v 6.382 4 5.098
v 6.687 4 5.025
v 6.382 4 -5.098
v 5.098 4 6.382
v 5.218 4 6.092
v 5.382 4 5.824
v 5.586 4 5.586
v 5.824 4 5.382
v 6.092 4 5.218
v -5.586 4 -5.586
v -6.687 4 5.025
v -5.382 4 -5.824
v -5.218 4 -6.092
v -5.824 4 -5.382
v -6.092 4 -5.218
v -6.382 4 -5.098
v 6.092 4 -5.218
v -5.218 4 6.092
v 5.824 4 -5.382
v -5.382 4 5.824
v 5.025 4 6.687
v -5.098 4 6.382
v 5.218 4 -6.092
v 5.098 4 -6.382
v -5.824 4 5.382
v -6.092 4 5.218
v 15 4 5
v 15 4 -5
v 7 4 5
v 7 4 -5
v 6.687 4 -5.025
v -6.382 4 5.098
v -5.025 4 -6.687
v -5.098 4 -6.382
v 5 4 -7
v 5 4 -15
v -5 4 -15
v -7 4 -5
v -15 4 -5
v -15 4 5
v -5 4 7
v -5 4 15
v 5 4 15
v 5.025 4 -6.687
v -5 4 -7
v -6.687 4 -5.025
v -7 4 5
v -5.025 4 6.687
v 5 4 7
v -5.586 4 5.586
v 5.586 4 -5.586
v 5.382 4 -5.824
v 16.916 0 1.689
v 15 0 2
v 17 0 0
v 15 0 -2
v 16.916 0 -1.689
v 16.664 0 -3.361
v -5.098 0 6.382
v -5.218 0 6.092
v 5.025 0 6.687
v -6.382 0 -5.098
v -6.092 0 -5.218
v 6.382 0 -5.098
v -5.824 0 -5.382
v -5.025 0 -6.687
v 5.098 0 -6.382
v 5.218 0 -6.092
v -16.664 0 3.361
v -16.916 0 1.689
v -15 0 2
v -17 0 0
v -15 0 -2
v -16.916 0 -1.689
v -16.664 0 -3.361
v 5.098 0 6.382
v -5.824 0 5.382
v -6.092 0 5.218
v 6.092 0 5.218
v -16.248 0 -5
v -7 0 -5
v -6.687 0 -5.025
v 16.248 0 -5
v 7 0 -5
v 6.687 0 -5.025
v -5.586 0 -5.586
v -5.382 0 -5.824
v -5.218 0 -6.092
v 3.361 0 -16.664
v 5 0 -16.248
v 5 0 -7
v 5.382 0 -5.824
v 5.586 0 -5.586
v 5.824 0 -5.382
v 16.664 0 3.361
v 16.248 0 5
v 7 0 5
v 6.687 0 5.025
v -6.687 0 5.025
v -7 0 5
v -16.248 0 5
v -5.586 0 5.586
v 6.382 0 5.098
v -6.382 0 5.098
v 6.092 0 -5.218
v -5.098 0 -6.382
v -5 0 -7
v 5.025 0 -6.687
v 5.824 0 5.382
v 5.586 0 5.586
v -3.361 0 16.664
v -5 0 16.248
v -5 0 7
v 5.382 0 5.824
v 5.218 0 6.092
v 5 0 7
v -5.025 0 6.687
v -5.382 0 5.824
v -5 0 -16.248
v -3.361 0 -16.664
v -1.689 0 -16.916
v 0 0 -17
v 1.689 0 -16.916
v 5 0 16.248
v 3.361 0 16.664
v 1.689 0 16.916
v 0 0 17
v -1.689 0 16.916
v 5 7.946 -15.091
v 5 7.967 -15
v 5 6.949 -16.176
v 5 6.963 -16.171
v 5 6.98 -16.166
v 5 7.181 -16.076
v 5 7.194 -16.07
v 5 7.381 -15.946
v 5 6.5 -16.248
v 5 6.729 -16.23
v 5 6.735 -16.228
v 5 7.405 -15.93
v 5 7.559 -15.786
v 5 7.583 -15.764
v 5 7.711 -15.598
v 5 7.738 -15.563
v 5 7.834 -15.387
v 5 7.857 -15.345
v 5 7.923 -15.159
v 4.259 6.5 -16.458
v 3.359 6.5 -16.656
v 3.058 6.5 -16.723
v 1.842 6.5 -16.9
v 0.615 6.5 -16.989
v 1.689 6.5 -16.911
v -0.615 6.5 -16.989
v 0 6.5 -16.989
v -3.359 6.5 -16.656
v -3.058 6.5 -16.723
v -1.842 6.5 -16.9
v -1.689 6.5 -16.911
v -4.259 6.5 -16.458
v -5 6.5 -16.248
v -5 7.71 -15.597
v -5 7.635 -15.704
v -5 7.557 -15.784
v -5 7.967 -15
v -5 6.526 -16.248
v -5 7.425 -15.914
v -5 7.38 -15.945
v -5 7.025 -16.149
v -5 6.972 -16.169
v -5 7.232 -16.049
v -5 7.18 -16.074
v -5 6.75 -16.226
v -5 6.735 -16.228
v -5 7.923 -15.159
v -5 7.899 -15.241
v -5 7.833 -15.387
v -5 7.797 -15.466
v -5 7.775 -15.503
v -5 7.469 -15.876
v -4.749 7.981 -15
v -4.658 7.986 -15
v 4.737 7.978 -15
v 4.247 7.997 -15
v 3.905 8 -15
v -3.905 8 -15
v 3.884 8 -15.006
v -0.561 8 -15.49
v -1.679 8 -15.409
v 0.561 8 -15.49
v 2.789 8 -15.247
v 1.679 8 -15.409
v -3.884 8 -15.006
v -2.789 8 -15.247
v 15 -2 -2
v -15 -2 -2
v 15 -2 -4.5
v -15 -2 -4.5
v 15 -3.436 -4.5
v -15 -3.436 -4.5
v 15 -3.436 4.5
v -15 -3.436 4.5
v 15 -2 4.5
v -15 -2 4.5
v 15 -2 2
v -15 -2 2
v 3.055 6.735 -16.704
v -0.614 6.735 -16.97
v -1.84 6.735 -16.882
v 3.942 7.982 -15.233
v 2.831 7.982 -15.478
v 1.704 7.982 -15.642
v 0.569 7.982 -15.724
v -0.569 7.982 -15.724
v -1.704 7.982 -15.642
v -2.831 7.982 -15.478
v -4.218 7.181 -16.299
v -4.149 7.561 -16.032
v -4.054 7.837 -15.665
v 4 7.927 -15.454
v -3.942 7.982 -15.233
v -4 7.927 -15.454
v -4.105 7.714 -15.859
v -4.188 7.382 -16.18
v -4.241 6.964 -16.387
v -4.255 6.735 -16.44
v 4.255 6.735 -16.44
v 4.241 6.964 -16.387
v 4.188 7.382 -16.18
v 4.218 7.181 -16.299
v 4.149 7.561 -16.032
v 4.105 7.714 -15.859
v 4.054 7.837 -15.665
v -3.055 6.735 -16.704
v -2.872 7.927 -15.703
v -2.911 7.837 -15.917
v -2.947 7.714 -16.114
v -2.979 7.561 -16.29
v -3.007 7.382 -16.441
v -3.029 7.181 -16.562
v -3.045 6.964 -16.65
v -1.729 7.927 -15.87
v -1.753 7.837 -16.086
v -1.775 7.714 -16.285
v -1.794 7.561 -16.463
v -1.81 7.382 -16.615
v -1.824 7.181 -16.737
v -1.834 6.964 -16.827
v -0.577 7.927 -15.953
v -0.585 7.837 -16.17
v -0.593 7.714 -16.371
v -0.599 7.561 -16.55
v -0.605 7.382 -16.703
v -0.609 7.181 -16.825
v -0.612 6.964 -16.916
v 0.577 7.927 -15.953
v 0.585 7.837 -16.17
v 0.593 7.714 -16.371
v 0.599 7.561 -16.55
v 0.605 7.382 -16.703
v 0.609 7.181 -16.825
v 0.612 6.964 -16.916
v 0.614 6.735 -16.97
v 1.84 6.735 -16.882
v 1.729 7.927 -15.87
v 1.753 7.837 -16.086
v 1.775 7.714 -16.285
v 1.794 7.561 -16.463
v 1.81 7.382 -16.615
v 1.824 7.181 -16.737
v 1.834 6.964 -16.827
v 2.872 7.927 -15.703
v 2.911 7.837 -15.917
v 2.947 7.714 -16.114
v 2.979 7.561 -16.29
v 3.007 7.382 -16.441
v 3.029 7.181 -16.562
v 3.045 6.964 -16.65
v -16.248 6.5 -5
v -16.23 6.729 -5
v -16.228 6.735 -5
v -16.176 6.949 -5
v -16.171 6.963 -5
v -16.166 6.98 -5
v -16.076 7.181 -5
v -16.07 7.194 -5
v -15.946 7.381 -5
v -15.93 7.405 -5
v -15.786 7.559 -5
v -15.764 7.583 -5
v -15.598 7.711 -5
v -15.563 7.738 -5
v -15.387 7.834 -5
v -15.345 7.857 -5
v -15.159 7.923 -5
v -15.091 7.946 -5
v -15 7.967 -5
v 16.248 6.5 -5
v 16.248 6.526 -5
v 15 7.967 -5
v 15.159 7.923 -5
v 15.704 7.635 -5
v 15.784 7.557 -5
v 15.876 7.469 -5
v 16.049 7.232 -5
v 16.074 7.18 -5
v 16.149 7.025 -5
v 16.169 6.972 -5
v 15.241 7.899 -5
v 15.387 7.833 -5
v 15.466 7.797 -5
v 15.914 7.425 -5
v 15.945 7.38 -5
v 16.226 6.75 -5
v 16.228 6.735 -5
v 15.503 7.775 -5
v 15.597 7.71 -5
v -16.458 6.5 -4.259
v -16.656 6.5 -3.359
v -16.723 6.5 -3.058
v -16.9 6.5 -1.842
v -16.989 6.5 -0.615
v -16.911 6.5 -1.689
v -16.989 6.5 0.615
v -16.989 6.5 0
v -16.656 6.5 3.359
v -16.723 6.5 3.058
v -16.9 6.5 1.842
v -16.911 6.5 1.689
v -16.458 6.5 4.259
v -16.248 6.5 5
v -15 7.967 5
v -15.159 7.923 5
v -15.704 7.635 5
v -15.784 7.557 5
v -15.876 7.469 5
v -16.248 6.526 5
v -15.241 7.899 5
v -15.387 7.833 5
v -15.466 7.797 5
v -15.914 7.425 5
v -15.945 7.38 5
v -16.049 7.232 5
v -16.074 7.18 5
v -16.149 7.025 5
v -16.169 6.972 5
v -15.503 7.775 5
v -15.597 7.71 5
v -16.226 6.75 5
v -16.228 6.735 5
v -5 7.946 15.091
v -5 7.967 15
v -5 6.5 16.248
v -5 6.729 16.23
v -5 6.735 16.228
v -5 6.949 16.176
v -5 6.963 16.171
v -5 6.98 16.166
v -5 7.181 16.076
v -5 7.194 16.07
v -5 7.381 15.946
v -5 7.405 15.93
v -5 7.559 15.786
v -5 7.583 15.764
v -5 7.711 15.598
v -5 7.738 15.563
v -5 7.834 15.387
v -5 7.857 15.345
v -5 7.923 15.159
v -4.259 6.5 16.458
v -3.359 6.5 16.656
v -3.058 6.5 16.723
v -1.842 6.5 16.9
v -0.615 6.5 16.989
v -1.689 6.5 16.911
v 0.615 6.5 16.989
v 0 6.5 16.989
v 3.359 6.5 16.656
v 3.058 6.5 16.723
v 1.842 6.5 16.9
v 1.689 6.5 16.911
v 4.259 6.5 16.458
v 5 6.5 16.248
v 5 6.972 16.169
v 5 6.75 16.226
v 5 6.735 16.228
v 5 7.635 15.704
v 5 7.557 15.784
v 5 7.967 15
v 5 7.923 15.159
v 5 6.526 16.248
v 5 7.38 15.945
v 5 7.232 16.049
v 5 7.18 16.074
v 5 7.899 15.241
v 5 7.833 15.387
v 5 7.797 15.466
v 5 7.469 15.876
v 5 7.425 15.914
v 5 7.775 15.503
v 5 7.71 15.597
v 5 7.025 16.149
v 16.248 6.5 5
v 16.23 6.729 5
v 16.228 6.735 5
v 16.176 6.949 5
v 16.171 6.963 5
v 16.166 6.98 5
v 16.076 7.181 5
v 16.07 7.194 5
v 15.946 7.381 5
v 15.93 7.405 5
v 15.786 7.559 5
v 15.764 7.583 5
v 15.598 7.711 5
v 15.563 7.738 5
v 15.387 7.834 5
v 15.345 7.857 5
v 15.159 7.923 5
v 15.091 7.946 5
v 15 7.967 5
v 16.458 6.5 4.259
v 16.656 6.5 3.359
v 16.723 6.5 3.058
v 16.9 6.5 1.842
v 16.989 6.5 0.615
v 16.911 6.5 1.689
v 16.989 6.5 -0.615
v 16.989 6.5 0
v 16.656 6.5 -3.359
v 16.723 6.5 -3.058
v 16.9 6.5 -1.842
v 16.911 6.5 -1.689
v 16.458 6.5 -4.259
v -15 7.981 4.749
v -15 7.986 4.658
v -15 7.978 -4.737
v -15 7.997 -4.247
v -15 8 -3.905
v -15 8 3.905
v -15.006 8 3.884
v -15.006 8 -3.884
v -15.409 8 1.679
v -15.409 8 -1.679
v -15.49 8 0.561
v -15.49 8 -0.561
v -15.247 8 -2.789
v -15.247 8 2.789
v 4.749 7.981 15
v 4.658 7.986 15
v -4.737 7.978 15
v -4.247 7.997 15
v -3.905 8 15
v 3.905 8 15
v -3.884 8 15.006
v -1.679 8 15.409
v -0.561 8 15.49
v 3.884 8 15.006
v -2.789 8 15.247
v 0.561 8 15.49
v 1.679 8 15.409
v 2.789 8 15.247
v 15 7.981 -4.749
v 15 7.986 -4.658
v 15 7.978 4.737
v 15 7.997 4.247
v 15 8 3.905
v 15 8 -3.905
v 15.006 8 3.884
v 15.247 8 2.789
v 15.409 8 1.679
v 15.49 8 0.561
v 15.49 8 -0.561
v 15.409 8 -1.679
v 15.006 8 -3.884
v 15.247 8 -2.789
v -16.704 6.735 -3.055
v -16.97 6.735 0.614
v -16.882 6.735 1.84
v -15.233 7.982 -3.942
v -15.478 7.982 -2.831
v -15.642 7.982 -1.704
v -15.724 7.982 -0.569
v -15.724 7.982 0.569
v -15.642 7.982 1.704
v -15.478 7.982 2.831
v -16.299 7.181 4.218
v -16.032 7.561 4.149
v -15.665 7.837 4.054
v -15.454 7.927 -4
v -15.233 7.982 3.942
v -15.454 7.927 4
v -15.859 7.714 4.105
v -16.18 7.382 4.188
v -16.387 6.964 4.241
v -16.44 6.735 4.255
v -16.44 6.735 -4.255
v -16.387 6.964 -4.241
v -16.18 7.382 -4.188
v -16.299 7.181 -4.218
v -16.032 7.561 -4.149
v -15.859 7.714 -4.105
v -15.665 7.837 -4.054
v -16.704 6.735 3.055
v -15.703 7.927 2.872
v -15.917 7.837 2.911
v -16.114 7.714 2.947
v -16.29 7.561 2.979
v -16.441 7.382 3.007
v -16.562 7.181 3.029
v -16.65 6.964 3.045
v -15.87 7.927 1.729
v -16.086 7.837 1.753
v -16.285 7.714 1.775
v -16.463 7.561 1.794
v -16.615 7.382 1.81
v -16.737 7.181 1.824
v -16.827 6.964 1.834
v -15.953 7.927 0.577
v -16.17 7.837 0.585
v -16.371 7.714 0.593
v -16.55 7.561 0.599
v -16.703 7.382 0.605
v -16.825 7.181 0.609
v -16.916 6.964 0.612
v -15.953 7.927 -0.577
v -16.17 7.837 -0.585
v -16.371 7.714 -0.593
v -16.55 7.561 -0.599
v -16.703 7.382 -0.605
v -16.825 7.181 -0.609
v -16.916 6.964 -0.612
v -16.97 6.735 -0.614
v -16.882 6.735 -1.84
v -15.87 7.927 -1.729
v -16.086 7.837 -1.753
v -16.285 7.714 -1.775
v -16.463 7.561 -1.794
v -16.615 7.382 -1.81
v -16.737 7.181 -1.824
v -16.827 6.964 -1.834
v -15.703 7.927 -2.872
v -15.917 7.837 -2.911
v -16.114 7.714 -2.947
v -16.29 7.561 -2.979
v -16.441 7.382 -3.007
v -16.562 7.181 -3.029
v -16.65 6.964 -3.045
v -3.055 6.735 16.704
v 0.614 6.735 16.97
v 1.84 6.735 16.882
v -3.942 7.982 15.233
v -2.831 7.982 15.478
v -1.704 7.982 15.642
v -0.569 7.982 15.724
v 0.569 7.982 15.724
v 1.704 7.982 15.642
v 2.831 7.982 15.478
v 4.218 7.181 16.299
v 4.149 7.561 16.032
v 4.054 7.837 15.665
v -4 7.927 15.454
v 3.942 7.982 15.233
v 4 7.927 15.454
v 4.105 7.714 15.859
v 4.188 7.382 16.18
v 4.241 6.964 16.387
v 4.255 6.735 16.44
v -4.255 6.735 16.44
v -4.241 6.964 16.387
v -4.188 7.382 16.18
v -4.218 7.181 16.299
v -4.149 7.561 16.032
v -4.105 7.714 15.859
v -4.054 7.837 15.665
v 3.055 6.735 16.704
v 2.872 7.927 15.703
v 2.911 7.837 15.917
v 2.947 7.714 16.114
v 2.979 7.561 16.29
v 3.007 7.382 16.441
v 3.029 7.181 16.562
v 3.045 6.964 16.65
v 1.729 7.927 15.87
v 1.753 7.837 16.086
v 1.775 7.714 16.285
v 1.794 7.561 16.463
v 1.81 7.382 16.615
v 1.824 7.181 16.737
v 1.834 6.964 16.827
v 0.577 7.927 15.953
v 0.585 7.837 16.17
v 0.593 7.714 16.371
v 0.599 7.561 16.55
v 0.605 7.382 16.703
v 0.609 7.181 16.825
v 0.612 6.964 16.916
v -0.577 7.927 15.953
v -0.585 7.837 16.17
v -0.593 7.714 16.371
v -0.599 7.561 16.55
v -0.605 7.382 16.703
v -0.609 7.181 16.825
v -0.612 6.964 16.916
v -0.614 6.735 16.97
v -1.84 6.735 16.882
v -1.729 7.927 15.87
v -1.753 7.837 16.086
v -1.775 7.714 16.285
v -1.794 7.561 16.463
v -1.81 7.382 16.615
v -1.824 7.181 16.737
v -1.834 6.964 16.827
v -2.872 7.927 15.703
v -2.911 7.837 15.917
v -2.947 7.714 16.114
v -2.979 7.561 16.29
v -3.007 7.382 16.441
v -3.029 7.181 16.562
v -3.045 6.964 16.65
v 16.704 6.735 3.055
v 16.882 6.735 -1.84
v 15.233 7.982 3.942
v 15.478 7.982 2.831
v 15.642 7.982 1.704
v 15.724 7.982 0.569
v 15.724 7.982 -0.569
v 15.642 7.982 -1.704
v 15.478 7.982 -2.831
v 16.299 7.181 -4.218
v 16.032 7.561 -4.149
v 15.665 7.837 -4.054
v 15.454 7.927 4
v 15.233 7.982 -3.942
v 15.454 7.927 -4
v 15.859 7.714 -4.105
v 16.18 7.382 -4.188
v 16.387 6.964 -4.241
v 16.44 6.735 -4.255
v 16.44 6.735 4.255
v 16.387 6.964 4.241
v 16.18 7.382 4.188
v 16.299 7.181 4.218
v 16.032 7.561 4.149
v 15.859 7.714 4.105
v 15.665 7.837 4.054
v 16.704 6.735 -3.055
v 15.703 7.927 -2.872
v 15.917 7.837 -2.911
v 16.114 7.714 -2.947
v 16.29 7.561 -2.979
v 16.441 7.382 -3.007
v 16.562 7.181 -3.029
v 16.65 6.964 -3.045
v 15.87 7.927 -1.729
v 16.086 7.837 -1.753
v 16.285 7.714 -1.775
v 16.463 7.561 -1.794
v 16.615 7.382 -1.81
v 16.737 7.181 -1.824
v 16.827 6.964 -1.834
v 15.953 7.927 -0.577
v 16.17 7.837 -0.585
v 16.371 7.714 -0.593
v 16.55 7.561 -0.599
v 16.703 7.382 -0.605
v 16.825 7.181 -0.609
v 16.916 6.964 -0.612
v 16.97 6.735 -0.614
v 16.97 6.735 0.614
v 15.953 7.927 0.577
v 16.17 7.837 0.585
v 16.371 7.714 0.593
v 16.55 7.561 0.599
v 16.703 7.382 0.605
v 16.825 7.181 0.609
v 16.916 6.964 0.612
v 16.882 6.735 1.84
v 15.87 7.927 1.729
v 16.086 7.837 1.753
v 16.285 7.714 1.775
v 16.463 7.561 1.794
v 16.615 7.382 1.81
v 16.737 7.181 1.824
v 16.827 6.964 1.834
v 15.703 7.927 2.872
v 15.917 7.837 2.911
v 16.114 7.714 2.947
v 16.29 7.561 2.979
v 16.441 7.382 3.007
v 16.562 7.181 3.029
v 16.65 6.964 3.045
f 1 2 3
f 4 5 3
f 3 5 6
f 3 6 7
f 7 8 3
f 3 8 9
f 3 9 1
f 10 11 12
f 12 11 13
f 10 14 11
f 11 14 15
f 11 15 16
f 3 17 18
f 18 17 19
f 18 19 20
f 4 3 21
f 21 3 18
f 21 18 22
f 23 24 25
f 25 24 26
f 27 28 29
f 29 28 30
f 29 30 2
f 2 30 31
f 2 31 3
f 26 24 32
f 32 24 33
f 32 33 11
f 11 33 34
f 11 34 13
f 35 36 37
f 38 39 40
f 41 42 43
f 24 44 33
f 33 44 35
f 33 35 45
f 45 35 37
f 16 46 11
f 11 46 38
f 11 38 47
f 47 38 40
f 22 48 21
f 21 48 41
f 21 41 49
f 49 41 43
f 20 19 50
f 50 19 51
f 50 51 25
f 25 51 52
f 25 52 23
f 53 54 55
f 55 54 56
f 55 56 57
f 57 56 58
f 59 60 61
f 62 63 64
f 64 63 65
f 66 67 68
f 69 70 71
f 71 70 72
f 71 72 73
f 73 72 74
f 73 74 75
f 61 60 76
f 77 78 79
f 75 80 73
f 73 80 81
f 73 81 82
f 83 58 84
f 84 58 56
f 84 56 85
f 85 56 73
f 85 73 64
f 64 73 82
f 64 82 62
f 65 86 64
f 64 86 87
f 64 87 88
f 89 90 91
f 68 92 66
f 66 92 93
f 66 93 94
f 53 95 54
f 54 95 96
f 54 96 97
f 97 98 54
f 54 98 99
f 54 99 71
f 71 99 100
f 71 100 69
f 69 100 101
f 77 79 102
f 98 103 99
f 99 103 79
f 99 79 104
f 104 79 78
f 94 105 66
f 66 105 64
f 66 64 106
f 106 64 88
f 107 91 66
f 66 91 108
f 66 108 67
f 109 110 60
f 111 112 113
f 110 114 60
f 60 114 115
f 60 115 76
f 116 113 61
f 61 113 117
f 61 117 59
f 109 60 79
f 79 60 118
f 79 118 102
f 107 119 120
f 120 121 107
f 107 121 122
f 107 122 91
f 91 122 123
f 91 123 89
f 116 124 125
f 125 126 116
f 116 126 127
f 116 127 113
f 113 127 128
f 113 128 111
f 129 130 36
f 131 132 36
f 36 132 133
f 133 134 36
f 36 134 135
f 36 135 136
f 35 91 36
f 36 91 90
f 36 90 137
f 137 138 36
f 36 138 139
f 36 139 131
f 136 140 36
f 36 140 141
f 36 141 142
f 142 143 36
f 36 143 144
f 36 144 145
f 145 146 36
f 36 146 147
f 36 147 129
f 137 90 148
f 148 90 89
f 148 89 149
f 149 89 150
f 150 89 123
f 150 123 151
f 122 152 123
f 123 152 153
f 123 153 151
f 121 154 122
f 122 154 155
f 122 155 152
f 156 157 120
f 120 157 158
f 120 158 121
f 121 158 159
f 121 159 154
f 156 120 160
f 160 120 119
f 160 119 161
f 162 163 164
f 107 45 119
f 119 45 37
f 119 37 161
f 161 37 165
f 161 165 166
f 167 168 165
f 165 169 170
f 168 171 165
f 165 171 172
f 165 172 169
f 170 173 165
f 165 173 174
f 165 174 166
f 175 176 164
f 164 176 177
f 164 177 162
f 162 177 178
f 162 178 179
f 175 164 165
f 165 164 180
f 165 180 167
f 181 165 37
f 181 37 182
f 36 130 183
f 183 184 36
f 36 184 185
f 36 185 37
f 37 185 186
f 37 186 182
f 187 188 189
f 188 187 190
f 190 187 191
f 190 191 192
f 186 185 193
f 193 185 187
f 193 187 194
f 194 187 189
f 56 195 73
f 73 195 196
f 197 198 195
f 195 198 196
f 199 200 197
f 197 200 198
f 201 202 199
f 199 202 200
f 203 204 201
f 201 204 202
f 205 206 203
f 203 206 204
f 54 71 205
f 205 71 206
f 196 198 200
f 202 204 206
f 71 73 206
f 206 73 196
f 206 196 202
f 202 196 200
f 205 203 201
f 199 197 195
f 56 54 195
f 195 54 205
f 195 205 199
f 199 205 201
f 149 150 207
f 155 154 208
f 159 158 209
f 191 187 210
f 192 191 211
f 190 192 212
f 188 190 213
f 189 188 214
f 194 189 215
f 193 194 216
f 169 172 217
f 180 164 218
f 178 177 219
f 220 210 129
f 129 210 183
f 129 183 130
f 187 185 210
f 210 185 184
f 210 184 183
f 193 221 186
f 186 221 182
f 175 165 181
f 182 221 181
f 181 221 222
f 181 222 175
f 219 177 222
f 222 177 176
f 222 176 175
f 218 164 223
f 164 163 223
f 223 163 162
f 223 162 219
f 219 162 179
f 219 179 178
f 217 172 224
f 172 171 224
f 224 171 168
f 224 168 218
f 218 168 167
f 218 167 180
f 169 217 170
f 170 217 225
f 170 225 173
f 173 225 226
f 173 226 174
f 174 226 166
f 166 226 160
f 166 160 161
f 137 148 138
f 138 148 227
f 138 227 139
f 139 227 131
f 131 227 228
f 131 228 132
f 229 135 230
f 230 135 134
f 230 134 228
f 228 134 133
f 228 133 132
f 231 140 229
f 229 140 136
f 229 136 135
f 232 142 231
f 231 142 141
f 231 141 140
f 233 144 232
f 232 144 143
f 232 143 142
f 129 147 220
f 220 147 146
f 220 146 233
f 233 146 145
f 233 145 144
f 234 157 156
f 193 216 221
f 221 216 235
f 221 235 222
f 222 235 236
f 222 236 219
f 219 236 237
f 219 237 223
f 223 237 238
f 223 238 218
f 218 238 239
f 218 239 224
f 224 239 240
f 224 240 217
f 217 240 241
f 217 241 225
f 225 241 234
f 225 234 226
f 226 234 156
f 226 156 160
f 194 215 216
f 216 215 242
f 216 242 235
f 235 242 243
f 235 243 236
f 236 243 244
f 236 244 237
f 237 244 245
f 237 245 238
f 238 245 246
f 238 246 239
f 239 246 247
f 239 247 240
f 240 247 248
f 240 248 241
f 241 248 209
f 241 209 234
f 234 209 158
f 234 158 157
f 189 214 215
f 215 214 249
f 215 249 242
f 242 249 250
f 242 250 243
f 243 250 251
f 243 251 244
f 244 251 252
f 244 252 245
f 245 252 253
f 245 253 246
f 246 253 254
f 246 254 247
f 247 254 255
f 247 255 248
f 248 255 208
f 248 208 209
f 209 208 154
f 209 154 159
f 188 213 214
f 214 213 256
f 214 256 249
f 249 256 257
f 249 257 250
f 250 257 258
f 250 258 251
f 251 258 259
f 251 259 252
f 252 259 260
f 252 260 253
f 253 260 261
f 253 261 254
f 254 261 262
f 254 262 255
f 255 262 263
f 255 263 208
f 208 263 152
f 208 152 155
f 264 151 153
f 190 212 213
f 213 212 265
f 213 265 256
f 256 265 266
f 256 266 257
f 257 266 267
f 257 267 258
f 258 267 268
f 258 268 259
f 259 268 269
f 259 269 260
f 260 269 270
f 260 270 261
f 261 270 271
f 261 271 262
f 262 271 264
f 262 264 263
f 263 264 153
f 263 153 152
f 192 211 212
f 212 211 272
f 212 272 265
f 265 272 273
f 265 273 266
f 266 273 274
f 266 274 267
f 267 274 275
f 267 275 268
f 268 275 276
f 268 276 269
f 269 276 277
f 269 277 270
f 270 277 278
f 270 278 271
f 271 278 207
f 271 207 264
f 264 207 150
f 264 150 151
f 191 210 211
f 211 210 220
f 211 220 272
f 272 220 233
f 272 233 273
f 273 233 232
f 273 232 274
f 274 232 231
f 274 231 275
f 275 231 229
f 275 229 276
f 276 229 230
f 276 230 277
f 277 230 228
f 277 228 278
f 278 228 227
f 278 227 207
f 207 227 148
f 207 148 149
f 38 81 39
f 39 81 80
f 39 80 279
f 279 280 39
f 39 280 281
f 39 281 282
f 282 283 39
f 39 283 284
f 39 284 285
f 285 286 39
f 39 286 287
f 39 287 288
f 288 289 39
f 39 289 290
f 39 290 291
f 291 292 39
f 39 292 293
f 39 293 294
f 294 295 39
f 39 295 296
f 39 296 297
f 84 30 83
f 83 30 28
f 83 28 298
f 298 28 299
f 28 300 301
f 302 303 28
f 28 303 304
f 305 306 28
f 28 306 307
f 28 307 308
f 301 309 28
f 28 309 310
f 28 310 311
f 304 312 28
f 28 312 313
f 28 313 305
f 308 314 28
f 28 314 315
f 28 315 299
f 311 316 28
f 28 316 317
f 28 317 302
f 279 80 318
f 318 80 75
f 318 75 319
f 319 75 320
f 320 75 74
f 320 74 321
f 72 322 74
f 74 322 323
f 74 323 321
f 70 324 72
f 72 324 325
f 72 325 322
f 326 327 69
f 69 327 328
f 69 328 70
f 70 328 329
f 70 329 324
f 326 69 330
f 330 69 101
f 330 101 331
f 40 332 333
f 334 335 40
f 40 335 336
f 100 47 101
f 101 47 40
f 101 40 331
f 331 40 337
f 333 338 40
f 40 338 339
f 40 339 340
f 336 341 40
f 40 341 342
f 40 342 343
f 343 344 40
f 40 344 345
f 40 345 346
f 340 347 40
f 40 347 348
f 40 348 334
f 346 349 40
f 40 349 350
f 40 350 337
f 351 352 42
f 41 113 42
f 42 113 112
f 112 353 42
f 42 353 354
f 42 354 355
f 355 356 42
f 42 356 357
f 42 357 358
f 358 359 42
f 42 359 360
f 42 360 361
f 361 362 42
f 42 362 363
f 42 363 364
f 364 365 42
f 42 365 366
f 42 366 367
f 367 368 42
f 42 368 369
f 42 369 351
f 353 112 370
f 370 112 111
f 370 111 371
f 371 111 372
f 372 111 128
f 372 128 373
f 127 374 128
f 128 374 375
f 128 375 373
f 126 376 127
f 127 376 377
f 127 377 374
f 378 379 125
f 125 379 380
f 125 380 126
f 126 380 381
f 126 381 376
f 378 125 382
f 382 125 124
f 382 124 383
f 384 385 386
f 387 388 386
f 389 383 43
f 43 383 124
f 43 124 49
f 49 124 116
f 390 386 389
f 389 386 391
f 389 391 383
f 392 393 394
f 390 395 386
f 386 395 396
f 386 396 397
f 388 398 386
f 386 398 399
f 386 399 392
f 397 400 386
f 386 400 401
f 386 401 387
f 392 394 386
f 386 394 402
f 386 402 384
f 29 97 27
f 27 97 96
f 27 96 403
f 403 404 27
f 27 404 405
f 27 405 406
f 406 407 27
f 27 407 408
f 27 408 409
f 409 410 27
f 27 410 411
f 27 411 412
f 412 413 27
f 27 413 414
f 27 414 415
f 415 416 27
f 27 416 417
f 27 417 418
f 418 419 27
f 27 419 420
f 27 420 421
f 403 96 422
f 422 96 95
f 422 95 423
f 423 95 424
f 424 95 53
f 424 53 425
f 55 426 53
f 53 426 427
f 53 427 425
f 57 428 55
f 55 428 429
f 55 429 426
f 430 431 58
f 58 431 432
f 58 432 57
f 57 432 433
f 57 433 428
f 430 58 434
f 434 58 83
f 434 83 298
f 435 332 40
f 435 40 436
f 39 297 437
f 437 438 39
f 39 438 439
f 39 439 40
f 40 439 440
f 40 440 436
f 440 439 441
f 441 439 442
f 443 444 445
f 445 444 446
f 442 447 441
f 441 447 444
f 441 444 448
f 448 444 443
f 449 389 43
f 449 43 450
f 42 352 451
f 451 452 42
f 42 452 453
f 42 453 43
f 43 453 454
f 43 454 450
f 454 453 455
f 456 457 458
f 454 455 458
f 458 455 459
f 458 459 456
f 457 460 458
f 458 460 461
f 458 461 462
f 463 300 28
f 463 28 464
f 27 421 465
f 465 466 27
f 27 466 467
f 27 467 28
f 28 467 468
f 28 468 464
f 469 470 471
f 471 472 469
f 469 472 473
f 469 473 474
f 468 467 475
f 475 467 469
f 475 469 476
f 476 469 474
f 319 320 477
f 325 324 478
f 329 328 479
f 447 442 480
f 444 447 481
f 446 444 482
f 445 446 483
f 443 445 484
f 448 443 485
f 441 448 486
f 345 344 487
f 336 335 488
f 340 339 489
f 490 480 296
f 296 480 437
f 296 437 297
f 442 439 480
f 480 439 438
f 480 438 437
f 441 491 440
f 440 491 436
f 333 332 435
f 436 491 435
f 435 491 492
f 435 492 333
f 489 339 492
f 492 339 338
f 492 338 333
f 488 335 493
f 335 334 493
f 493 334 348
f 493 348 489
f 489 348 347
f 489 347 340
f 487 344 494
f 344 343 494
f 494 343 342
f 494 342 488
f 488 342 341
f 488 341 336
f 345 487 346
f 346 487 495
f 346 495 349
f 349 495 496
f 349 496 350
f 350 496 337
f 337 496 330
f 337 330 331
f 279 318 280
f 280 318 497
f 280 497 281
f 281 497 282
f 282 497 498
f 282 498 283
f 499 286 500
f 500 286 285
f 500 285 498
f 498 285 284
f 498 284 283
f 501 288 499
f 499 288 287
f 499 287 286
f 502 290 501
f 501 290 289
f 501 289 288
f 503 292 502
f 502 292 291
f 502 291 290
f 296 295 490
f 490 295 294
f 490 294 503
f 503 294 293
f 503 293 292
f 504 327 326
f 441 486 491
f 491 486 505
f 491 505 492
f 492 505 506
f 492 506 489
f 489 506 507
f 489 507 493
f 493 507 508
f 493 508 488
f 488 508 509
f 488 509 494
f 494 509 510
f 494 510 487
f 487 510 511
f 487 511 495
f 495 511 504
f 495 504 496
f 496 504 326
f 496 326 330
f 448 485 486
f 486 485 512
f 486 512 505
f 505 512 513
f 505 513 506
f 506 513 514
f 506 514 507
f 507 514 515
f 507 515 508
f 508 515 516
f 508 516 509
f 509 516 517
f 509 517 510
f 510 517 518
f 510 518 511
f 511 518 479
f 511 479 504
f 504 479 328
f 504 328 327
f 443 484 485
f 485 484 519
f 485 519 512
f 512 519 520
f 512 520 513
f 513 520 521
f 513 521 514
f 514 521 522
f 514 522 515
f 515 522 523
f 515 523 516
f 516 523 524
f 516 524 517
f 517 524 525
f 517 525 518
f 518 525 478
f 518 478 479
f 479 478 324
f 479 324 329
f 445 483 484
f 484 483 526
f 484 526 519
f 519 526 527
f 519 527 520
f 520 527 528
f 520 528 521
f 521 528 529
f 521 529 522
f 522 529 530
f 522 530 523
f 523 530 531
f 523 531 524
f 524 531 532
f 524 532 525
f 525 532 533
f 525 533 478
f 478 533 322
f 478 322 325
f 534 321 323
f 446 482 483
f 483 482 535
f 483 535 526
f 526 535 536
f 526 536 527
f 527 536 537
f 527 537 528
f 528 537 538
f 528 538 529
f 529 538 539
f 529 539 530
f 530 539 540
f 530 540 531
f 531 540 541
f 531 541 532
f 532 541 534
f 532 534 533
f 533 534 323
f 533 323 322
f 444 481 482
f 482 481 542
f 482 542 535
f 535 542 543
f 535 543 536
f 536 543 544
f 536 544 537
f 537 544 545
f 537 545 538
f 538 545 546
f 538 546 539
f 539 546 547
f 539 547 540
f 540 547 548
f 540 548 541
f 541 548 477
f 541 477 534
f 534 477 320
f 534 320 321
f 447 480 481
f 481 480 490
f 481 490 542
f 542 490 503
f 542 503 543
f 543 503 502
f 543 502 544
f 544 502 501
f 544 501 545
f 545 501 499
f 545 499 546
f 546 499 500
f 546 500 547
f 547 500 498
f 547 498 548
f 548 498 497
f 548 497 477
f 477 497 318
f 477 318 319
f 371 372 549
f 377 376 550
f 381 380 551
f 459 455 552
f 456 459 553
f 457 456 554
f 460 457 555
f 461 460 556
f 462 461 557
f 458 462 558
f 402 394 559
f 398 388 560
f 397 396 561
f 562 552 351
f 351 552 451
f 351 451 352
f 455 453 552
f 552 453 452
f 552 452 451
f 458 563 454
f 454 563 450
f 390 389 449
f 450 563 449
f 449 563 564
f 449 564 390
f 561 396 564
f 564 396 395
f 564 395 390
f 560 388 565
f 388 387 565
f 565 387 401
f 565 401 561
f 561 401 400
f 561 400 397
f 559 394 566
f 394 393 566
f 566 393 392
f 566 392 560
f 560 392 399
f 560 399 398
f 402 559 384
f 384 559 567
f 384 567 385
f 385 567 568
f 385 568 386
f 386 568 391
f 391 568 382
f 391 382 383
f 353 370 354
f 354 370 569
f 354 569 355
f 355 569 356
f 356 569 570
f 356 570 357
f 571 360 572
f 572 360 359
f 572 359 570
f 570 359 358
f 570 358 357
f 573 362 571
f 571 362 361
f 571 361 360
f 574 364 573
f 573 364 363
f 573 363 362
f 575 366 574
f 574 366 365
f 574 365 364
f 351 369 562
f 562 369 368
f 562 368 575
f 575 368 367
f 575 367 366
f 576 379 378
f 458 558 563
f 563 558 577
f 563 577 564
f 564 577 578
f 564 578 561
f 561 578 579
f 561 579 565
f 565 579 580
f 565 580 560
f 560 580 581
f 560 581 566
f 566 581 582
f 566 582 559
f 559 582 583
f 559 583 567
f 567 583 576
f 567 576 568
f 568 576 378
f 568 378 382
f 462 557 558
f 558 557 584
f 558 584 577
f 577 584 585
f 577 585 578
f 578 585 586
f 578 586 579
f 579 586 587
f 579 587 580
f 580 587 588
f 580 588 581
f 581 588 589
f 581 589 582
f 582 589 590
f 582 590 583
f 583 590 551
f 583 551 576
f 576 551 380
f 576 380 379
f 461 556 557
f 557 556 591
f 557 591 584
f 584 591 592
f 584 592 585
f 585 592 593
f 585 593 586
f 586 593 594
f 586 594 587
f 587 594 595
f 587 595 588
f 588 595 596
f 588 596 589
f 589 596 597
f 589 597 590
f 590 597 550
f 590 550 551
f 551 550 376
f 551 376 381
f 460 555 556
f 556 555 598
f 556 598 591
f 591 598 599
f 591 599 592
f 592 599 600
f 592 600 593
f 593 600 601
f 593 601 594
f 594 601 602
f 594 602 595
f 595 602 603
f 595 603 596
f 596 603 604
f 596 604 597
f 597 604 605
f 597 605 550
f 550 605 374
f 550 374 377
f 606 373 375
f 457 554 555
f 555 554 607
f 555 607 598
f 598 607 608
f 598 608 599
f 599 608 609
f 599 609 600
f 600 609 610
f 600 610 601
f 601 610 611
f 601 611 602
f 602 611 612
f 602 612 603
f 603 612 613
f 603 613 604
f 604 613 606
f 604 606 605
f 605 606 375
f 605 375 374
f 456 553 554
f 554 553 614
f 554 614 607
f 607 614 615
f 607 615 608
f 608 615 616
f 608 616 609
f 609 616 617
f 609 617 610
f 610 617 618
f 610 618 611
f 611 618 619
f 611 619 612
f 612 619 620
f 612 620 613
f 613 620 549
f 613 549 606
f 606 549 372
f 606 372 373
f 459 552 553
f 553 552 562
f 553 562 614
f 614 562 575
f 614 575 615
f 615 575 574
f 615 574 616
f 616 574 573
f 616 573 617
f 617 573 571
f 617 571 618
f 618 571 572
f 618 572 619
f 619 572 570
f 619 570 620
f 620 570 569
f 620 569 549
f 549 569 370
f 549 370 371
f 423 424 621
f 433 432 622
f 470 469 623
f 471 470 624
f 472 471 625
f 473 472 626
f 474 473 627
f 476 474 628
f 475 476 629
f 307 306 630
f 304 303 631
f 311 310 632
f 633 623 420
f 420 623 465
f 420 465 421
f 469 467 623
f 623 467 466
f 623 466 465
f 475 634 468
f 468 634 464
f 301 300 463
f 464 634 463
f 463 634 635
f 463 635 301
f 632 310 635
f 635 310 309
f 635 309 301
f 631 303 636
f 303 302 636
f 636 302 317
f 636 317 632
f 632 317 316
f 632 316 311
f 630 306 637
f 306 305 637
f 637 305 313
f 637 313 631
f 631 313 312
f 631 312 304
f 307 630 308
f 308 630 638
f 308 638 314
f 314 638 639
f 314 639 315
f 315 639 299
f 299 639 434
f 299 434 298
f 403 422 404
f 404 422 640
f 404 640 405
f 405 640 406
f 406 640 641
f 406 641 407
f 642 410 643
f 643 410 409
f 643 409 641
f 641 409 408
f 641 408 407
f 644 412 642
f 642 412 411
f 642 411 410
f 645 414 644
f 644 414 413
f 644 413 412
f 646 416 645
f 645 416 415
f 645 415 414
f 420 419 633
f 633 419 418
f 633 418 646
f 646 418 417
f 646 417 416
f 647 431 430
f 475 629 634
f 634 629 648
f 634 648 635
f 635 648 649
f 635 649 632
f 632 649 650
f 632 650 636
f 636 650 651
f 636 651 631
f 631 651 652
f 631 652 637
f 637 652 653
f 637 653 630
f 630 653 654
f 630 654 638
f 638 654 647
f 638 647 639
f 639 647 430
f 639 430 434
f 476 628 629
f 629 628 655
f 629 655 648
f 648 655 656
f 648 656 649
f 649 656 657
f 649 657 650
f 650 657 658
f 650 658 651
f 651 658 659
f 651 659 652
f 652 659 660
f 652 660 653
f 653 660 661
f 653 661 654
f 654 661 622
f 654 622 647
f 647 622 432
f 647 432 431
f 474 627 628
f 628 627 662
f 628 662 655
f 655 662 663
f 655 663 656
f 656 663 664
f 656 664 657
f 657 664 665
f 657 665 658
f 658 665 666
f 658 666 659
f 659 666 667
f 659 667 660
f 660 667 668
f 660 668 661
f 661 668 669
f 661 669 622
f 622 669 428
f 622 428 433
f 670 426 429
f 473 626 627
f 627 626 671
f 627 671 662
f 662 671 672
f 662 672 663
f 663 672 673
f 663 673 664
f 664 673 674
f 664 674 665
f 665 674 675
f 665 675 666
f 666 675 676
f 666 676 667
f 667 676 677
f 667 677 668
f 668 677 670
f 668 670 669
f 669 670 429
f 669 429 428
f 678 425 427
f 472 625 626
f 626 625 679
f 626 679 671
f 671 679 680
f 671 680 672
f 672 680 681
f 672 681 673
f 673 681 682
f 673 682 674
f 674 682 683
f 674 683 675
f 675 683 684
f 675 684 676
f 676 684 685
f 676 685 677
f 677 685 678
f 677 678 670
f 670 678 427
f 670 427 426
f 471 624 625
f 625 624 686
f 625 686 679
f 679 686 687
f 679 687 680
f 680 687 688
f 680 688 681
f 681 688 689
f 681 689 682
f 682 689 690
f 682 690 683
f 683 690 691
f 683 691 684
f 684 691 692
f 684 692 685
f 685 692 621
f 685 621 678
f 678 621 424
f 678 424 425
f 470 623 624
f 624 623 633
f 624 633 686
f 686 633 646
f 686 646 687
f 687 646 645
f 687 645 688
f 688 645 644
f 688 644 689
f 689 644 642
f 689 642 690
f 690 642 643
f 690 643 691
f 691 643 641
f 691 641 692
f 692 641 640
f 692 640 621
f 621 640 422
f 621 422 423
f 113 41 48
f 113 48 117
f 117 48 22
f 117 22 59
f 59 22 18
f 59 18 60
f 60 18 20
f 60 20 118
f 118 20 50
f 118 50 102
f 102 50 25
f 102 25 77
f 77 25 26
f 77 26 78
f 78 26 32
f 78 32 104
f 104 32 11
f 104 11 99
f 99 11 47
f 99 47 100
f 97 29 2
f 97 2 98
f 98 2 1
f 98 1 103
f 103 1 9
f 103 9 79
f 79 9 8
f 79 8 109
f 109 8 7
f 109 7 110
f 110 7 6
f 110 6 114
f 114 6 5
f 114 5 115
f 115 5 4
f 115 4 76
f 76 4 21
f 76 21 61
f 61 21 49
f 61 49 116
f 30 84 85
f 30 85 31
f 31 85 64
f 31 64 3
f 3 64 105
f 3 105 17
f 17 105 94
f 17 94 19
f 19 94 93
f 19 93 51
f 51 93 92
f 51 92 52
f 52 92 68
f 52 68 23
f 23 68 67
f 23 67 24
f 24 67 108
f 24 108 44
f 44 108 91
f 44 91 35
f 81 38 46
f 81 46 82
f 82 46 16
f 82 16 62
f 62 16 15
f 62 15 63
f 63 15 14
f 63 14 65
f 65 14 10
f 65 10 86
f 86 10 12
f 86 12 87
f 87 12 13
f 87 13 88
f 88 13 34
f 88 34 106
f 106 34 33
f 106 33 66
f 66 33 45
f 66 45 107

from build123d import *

# Parameters (mm, degrees)
BOSS_EXTRUDE1_DEPTH      = 4
BOSS_EXTRUDE6_DEPTH      = 8
BOSS_EXTRUDE5_DEPTH      = 15
BOSS_EXTRUDE5_DEPTH_BACK = 15
FILLET2_R                = 1.5
CIRPATTERN2_COUNT        = 4
FILLET2_OF_CIRPATTERN2_R = 1.5
FILLET4_R                = 2


with BuildPart() as part:
    # Sketch1 → Boss-Extrude1 (new body)
    with BuildSketch(Plane(origin=(0, 0, 0), x_dir=(1, 0, 0), z_dir=(0, 1, 0))):
        with BuildLine():
            ThreePointArc((5, 16.248076809), (0, 17), (-5, 16.248076809))
            Line((-5, 16.248076809), (-5, 0))
            Line((-5, 0), (5, 0))
            Line((5, 0), (5, 16.248076809))
        make_face()
    boss_extrude1 = extrude(amount=BOSS_EXTRUDE1_DEPTH)

    # Sketch1<6> → Boss-Extrude6 (add)
    with BuildSketch(Plane(origin=(0, 0, 0), x_dir=(1, 0, 0), z_dir=(0, 1, 0))):
        with BuildLine():
            Line((5, 15), (5, 16.248076809))
            ThreePointArc((5, 16.248076809), (0, 17), (-5, 16.248076809))
            Line((-5, 16.248076809), (-5, 15))
            Line((-5, 15), (5, 15))
        make_face()
    boss_extrude6 = extrude(amount=BOSS_EXTRUDE6_DEPTH)

    # Sketch4 → Boss-Extrude5 (add, two sides: drawn at the far end of the back side and taken through both)
    with BuildSketch(Plane.ZY.offset(-BOSS_EXTRUDE5_DEPTH_BACK)):
        Polygon((-2, 0), (-2, -2), (-4.5, -2), (-4.5, -3.436102186), (4.5, -3.436102186), (4.5, -2), (2, -2), (2, 0), align=None)
    extrude(amount=BOSS_EXTRUDE5_DEPTH + BOSS_EXTRUDE5_DEPTH_BACK)

    # Fillet2
    fillet2_edges = [part.edges().sort_by_distance(p)[0] for p in [
        (0, 8, -17),
    ]]
    fillet(fillet2_edges, radius=FILLET2_R)

    # CirPattern2: Boss-Extrude1, Boss-Extrude6 ×4 about axis
    cirpattern2_axis = Axis((0, 0, 0), (0, 1, 0))
    add([boss_extrude1.rotate(cirpattern2_axis, i * 360 / CIRPATTERN2_COUNT) for i in range(1, CIRPATTERN2_COUNT)])
    add([boss_extrude6.rotate(cirpattern2_axis, i * 360 / CIRPATTERN2_COUNT) for i in range(1, CIRPATTERN2_COUNT)])

    # Fillet2 of CirPattern2
    fillet2_of_cirpattern2_edges = [part.edges().sort_by_distance(p)[0] for p in [
        (-17, 8, 0),
        (0, 8, 17),
        (17, 8, 0),
    ]]
    fillet(fillet2_of_cirpattern2_edges, radius=FILLET2_OF_CIRPATTERN2_R)

    # Fillet4
    fillet4_edges = [part.edges().sort_by_distance(p)[0] for p in [
        (-5, 2, 5),
        (5, 2, 5),
        (5, 2, -5),
        (-5, 2, -5),
    ]]
    fillet(fillet4_edges, radius=FILLET4_R)


solid = part.part
